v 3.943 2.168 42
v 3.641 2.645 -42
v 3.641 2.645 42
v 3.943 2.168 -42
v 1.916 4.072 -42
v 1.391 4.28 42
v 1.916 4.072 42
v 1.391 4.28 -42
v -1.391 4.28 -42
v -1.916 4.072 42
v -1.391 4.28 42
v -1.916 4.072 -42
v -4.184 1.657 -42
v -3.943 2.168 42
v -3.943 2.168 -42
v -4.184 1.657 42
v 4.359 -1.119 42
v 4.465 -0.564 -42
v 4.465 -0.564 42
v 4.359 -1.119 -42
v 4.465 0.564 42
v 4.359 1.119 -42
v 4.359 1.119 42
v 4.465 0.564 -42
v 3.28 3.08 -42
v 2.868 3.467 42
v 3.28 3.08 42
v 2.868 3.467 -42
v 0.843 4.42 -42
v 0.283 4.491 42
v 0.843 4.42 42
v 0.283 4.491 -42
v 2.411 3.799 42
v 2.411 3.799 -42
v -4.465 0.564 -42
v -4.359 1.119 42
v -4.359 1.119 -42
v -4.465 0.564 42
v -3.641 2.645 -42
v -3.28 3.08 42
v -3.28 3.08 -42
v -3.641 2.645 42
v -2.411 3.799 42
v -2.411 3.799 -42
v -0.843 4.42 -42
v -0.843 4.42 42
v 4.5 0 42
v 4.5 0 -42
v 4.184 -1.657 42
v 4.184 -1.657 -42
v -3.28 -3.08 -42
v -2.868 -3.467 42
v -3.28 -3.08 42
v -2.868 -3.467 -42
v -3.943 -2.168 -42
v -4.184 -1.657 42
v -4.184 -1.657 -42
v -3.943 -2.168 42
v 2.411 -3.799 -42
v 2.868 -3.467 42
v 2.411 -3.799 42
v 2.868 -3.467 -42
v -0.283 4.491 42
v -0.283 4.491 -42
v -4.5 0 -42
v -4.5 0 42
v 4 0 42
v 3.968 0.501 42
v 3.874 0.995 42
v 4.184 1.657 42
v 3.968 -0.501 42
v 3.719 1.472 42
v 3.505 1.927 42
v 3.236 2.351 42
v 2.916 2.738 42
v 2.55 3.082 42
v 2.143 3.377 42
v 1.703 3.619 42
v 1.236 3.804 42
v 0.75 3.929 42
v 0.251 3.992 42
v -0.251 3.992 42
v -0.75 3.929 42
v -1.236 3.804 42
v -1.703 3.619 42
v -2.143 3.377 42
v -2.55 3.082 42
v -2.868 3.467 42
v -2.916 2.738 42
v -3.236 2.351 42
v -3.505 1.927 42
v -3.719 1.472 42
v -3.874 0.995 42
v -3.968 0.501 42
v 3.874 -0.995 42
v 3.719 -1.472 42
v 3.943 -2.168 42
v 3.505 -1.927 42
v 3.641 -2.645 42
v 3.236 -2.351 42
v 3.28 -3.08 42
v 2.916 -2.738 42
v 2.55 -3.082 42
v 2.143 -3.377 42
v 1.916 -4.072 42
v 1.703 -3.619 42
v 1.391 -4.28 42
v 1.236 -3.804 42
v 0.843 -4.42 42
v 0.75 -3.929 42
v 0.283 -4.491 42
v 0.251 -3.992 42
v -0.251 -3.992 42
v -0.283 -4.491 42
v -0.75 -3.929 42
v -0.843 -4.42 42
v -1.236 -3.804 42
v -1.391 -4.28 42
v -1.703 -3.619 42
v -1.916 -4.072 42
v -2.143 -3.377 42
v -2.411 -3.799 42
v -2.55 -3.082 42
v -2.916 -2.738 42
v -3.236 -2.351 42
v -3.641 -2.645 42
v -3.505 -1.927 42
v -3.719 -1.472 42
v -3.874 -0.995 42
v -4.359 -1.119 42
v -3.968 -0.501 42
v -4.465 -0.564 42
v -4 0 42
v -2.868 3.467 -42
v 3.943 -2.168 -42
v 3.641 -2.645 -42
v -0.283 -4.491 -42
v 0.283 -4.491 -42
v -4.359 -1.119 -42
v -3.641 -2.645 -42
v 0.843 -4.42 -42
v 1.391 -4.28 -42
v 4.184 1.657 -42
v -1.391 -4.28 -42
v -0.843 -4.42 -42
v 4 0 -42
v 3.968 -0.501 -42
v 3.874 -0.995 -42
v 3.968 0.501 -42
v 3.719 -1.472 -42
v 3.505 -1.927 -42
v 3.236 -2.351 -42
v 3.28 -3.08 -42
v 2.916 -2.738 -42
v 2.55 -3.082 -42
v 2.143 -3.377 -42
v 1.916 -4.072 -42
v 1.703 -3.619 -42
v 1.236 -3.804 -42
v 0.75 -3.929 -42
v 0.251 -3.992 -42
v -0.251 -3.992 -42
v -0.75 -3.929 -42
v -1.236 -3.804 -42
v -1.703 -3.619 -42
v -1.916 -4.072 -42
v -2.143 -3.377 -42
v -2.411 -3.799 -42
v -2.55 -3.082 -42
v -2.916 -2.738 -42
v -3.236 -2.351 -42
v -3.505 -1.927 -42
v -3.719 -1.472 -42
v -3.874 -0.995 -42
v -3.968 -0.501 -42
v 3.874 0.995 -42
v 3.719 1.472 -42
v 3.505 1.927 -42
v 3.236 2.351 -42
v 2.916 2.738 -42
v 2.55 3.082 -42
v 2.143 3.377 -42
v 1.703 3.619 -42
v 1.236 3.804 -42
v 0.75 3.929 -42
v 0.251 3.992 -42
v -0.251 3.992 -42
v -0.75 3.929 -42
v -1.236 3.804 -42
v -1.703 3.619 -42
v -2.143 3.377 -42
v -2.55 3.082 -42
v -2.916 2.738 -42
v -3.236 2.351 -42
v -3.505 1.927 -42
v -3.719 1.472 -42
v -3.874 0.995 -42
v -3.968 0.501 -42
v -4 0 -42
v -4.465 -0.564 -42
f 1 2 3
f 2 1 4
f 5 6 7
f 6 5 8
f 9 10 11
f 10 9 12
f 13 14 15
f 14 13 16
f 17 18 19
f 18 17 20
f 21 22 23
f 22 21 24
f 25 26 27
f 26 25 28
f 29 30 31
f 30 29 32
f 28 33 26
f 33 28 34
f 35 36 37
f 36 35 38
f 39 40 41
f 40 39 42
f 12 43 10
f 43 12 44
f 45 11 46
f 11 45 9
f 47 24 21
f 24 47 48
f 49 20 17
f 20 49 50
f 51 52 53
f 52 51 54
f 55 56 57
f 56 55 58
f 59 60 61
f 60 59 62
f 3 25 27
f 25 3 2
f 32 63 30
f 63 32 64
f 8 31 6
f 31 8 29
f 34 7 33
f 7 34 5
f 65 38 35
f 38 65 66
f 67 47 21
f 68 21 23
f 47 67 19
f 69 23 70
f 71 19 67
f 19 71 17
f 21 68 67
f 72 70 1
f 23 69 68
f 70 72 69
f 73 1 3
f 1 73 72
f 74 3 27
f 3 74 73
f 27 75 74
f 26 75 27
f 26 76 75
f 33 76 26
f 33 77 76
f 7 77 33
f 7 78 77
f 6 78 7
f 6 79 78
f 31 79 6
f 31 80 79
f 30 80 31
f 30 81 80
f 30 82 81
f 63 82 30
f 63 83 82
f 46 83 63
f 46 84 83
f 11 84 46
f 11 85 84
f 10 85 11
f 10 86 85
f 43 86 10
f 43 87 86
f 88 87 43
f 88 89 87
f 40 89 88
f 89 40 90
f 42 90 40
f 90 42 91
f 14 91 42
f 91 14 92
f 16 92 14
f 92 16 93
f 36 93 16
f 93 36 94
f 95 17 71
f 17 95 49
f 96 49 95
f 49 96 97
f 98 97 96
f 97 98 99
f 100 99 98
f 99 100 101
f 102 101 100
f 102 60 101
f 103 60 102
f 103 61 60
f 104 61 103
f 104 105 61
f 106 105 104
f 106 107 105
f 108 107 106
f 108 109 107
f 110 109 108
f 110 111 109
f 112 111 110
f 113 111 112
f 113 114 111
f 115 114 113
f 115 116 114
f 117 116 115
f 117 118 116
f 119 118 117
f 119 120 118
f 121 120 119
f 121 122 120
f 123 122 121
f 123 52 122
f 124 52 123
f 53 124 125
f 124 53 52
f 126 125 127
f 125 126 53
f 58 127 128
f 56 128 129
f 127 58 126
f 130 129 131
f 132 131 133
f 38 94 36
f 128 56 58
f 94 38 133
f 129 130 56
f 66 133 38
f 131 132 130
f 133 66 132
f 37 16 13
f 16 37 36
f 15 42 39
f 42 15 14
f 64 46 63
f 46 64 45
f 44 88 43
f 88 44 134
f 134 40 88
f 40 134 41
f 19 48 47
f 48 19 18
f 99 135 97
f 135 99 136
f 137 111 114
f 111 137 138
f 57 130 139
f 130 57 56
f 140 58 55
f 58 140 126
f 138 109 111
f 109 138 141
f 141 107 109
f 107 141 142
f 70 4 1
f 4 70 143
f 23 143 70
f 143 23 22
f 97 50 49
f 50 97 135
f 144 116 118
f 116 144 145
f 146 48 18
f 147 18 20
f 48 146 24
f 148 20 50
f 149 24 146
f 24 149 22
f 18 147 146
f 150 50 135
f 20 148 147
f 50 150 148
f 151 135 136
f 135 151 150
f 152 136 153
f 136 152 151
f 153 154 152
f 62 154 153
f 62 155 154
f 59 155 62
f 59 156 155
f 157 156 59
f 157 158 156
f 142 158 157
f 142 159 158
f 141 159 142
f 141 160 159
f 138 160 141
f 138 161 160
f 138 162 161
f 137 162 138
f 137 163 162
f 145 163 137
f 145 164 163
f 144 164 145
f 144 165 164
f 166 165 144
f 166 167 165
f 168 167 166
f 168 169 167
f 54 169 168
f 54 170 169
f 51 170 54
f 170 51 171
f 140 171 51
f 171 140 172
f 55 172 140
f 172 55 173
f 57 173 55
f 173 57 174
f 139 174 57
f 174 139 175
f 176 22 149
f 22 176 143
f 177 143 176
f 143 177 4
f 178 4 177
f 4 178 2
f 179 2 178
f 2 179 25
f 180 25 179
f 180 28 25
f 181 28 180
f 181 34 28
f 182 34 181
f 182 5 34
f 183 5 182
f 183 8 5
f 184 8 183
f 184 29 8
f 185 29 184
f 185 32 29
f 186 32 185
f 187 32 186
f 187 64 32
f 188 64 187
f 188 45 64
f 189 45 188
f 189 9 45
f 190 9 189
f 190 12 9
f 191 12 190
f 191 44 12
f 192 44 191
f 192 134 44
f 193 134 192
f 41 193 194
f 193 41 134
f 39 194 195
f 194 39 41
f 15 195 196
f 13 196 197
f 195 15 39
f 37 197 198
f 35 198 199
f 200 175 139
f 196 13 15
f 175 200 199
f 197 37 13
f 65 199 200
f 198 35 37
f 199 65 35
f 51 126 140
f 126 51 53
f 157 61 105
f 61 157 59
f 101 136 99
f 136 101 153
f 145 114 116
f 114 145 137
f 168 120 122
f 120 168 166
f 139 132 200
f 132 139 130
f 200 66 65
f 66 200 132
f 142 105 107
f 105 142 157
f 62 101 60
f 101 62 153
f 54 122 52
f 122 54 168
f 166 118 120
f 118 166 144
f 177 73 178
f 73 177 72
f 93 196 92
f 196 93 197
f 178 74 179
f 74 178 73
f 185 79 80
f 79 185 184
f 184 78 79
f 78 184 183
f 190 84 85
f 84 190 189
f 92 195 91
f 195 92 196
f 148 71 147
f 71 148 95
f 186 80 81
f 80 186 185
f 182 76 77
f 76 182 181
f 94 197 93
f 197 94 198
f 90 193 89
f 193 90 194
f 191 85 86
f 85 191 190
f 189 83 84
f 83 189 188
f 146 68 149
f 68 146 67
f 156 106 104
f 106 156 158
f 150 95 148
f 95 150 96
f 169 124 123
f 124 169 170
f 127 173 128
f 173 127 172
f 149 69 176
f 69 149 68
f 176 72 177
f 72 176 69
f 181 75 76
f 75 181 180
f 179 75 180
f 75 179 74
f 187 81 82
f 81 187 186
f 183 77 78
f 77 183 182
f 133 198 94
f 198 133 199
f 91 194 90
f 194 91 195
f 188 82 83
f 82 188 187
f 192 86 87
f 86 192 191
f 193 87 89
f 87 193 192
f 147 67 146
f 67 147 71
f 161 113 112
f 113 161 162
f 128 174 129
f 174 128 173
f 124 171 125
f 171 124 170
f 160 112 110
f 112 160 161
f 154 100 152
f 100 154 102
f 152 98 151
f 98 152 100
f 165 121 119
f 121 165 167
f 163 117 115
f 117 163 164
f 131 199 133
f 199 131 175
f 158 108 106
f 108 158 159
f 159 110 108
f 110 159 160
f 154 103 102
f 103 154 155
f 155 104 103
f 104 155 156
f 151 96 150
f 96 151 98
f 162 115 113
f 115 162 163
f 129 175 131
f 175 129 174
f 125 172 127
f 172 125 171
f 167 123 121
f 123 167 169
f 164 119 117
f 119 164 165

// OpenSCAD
$fn = 50;


difference() {
	union() {
		translate(v = [0, 0, -42.0000000000]) {
			cylinder(h = 84, r = 4.5000000000);
		}
	}
	union() {
		translate(v = [0, 0, -100.0000000000]) {
			cylinder(h = 200, r = 4);
		}
	}
}
